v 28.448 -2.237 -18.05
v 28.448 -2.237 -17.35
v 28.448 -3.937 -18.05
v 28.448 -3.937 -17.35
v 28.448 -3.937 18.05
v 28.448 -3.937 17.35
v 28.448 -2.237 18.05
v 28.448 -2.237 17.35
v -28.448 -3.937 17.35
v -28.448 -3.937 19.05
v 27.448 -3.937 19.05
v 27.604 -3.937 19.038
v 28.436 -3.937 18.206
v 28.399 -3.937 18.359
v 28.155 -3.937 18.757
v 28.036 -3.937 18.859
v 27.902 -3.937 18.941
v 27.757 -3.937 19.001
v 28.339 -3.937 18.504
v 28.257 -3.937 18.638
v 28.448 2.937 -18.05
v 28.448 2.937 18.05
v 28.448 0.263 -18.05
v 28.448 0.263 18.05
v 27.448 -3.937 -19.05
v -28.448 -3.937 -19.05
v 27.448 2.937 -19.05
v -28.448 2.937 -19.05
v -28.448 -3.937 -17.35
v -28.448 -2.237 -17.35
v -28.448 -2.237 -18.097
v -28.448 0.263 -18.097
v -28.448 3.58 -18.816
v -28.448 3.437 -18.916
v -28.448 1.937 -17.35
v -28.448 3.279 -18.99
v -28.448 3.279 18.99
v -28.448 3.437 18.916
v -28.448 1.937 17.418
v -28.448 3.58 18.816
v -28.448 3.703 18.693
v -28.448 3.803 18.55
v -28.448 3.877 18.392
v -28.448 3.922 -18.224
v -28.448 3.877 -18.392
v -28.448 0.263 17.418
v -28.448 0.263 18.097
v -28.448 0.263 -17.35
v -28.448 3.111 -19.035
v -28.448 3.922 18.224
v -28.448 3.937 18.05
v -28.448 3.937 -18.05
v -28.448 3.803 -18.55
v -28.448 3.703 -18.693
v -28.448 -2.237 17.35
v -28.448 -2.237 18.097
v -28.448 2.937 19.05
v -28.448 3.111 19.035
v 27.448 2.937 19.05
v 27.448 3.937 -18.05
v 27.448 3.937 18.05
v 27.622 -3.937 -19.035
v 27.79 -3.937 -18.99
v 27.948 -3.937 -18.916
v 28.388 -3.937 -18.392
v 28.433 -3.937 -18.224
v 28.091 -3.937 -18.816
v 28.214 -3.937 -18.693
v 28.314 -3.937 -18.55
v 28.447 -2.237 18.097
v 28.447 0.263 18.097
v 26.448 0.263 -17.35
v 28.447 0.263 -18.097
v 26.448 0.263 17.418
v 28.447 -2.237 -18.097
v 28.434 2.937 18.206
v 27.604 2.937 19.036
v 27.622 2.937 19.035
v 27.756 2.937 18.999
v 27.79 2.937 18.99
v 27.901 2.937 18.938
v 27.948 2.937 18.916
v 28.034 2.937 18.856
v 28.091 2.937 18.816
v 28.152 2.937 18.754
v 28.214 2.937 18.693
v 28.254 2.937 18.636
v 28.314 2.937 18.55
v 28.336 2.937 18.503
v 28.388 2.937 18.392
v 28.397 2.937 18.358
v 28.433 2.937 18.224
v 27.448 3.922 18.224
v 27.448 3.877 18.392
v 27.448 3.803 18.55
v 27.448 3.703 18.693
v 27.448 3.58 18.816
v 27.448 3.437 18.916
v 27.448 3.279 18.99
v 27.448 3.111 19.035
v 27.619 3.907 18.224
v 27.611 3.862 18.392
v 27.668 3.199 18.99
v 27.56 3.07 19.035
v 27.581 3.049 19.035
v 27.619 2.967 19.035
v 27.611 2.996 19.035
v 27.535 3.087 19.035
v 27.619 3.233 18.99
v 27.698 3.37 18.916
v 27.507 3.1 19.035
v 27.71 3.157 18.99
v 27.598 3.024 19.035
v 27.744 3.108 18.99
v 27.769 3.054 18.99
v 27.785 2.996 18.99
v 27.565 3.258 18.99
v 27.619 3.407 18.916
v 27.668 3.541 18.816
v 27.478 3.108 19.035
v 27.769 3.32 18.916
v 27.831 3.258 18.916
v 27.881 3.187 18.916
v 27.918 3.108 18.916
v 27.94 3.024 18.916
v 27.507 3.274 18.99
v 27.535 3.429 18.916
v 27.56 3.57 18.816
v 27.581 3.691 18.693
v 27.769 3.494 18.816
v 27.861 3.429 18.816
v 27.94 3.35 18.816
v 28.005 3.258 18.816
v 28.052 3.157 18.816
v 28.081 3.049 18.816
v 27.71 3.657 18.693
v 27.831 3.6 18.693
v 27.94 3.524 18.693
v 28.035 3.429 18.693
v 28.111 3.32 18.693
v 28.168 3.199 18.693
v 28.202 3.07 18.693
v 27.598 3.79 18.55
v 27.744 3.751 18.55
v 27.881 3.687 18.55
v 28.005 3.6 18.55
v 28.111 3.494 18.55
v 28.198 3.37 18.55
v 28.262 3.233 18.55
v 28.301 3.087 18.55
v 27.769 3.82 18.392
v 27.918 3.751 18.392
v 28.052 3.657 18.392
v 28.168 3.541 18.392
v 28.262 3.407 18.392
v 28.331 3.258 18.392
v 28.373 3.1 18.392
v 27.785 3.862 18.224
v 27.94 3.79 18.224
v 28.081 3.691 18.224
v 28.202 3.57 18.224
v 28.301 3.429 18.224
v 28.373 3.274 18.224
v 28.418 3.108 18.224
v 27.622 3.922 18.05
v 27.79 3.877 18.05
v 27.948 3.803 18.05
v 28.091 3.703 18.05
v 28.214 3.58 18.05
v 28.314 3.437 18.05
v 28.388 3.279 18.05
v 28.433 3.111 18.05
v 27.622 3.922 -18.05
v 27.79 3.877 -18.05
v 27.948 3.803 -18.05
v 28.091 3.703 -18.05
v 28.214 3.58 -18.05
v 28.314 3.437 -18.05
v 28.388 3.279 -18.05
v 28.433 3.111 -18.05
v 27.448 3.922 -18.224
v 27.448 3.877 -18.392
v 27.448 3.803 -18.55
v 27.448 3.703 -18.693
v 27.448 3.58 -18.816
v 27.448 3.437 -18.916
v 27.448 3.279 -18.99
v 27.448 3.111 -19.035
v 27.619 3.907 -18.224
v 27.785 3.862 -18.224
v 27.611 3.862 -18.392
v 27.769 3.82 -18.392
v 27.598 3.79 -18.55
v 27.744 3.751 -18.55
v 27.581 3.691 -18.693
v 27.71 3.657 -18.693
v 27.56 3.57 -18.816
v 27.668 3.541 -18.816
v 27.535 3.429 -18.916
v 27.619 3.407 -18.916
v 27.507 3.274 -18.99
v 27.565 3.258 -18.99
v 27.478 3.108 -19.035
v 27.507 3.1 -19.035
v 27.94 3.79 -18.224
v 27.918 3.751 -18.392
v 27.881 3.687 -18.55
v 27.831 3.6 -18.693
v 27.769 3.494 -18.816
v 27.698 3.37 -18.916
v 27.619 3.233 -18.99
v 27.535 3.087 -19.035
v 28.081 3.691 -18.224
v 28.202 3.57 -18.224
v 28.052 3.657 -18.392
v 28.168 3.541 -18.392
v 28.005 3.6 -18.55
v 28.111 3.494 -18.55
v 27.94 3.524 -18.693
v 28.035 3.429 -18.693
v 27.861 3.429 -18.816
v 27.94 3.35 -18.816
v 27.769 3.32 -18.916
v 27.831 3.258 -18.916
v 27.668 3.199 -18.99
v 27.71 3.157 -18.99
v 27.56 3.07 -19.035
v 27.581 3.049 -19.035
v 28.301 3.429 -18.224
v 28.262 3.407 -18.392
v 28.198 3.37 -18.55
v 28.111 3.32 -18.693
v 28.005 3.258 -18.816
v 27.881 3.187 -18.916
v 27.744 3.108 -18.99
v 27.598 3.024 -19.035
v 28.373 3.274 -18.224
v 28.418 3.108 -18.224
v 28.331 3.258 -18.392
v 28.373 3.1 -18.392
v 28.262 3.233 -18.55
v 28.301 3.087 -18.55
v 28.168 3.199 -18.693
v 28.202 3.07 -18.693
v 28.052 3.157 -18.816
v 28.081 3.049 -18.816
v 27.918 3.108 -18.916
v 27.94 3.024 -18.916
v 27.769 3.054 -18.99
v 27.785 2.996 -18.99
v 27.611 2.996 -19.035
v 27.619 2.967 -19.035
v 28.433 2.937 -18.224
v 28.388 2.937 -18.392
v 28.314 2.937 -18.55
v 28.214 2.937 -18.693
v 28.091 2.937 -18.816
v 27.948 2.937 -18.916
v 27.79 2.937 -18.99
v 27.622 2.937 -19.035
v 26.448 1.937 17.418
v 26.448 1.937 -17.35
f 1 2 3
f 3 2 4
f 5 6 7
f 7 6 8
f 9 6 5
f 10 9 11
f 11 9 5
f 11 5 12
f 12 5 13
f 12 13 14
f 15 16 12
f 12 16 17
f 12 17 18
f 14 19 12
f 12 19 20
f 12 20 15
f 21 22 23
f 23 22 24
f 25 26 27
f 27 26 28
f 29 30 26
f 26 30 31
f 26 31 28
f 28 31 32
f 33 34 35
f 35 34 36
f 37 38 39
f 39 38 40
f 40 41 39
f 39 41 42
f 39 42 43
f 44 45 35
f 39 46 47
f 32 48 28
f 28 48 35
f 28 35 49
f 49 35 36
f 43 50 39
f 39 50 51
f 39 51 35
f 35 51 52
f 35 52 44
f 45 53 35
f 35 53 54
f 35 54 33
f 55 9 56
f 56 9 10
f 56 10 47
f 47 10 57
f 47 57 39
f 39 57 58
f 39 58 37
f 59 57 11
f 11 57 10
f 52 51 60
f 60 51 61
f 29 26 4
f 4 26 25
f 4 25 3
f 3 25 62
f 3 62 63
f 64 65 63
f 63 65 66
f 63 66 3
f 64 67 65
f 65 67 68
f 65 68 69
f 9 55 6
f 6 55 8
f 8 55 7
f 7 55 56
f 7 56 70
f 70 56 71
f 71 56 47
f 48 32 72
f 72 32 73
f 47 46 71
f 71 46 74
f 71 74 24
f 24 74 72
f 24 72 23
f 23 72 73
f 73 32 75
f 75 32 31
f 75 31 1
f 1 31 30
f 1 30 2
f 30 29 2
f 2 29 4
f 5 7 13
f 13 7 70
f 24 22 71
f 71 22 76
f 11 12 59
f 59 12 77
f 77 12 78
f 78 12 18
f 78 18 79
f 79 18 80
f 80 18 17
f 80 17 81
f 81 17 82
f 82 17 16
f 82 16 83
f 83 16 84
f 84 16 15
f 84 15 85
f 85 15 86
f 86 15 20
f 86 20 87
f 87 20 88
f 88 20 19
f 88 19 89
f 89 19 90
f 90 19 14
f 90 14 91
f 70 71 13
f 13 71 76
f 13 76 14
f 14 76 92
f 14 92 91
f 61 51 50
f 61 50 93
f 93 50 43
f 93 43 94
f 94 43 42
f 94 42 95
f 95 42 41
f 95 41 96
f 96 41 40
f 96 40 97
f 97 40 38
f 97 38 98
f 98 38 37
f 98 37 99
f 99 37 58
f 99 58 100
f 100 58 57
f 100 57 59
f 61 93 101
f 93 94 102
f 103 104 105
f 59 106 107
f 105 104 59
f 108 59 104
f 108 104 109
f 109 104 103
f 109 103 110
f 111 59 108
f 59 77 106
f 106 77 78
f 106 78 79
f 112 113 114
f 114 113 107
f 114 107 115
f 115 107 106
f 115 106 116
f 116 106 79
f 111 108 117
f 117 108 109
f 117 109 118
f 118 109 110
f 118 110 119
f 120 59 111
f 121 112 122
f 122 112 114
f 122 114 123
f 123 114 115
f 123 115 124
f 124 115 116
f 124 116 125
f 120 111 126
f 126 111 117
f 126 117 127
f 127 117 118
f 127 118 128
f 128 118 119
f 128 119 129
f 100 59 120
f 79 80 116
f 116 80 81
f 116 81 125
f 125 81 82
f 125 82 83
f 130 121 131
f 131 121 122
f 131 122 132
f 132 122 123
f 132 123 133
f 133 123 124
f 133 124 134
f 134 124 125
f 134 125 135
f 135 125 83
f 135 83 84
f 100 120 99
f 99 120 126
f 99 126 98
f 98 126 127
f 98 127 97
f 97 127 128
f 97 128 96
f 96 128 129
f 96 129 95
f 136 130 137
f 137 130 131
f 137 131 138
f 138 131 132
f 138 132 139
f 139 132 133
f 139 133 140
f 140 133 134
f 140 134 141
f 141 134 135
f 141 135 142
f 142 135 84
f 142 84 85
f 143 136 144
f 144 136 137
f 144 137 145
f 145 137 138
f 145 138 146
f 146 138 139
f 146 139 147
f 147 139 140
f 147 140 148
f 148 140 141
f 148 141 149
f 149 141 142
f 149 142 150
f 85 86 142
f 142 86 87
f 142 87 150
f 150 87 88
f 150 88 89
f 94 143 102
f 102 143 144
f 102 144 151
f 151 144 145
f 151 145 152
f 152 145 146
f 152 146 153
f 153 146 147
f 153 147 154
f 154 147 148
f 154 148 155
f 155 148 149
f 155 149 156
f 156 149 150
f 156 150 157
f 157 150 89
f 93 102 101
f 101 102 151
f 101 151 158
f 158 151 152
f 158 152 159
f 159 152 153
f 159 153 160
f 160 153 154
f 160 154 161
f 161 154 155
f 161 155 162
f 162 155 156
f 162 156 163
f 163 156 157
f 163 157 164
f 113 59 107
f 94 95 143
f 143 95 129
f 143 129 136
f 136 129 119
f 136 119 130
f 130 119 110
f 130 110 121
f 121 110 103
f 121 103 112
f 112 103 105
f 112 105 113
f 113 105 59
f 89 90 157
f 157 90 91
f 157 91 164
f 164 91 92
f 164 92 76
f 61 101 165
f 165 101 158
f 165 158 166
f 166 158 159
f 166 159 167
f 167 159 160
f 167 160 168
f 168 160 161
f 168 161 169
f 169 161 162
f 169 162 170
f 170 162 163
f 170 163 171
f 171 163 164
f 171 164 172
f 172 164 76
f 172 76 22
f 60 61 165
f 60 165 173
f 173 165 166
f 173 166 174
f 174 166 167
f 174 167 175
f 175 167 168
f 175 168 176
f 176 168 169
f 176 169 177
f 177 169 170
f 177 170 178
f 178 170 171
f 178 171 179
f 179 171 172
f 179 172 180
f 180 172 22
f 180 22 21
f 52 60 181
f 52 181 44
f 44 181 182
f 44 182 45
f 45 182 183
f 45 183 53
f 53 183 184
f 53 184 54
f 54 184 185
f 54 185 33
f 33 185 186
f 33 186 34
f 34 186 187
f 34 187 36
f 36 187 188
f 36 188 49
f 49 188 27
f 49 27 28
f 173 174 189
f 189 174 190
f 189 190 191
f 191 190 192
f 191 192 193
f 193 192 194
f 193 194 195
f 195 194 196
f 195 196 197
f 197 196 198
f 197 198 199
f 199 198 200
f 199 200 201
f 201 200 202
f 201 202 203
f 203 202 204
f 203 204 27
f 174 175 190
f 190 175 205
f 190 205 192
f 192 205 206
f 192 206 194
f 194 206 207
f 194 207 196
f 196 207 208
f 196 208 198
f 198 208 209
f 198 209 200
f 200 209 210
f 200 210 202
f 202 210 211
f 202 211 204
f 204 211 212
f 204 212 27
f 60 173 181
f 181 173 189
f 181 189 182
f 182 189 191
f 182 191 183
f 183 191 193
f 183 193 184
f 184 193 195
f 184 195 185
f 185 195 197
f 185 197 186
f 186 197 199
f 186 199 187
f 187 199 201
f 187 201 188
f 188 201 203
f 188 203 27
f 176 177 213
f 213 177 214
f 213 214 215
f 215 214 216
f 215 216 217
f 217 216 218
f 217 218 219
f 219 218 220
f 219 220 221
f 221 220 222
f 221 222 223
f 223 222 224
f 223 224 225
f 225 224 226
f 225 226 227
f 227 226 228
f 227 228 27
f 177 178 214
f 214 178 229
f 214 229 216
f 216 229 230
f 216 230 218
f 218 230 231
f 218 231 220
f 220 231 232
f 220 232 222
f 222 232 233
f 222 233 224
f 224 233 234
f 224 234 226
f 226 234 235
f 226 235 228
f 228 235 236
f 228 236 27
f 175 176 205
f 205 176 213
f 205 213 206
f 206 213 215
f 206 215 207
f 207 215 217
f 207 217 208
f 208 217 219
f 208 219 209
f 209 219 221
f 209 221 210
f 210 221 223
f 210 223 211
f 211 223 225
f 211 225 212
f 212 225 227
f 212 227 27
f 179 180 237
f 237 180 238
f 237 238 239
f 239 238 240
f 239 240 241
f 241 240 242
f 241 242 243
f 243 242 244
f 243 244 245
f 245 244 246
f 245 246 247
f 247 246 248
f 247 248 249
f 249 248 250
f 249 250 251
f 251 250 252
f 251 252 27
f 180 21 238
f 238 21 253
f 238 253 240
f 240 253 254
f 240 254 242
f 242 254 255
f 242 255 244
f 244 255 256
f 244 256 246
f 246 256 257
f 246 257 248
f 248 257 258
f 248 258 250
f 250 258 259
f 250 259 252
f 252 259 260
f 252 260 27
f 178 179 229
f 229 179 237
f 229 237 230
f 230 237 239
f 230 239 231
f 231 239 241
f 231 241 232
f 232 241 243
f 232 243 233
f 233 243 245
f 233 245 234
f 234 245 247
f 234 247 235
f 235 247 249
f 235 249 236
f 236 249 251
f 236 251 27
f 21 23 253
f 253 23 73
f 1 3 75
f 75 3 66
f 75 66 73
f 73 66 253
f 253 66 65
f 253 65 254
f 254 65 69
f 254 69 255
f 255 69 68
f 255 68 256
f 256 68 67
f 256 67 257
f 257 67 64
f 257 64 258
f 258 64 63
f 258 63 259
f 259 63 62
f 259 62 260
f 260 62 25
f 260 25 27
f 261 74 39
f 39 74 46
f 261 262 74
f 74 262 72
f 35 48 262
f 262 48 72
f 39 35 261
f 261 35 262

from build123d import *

# Parameters (mm, degrees)
SKETCH1_W           = 56.896
SKETCH1_H           = 38.1
BOSS_EXTRUDE1_DEPTH = 3.937
CUT_EXTRUDE1_DEPTH  = 61.12950428
FILLET1_R           = 1
SKETCH3_W           = 34.767886748
SKETCH3_H           = 4.174
CUT_EXTRUDE2_DEPTH  = 54.896


with BuildPart() as part:
    # Sketch1 → Boss-Extrude1 (new, symmetric)
    with BuildSketch(Plane(origin=(0, 0, 0), x_dir=(1, 0, 0), z_dir=(0, 1, 0))):
        Rectangle(SKETCH1_W, SKETCH1_H)
    extrude(amount=BOSS_EXTRUDE1_DEPTH, both=True)

    # Sketch2 → Cut-Extrude1 (cut, through all)
    with BuildSketch(Plane(origin=(28.448, 0, 0), x_dir=(0, 0, -1), z_dir=(1, 0, 0))):
        Polygon((18.0975, -2.237), (18.0975, 0.263), (17.492836072, 0.263), (-17.492836072, 0.263), (-18.0975, 0.263), (-18.0975, -2.237), (-17.35, -2.237), (-17.35, -3.937), (17.35, -3.937), (17.35, -2.237), align=None)
    extrude(amount=-CUT_EXTRUDE1_DEPTH, mode=Mode.SUBTRACT)

    # Fillet1
    # the kernel refuses this fillet: 1 mm, written as the material it takes off along each edge
    with BuildSketch(Plane(origin=(27.448, 2.937, -18.05), x_dir=(1, 0, 0), z_dir=(0, 0, -1))) as fillet1_piece_1_section:
        Polygon((0, 0), (FILLET1_R, 0), (FILLET1_R, -FILLET1_R), (0, -FILLET1_R), align=None)
    fillet1_piece_1 = extrude(amount=FILLET1_R, mode=Mode.PRIVATE)
    fillet1_piece_1 = fillet1_piece_1 - Plane(origin=(27.448, 2.937, -18.05), x_dir=(-0.7071067811865475, -0.7071067811865475, 0), z_dir=(0, 0, -1)) * Sphere(FILLET1_R, mode=Mode.PRIVATE)
    add(fillet1_piece_1, mode=Mode.SUBTRACT)
    with BuildSketch(Plane(origin=(27.448, 2.937, 18.05), x_dir=(0, 1, 0), z_dir=(1, 0, 0))) as fillet1_piece_2_section:
        Polygon((0, 0), (FILLET1_R, 0), (FILLET1_R, FILLET1_R), (0, FILLET1_R), align=None)
    fillet1_piece_2 = extrude(amount=FILLET1_R, mode=Mode.PRIVATE)
    fillet1_piece_2 = fillet1_piece_2 - Plane(origin=(27.448, 2.937, 18.05), x_dir=(0, -0.7071067811865475, -0.7071067811865475), z_dir=(1, 0, 0)) * Sphere(FILLET1_R, mode=Mode.PRIVATE)
    add(fillet1_piece_2, mode=Mode.SUBTRACT)
    with BuildSketch(Plane(origin=(-30.948, 3.937, -19.05), x_dir=(0, -1, 0), z_dir=(1, 0, 0))) as fillet1_piece_3:
        with BuildLine():
            CenterArc((FILLET1_R, -FILLET1_R), FILLET1_R, 90, 90)
            Line((0, -FILLET1_R), (0, 0))
            Line((0, 0), (FILLET1_R, 0))
        make_face()
    extrude(amount=58.396, mode=Mode.SUBTRACT)
    with BuildSketch(Plane(origin=(28.448, 3.937, -18.05), x_dir=(0, -1, 0), z_dir=(0, 0, 1))) as fillet1_piece_4:
        with BuildLine():
            CenterArc((FILLET1_R, -FILLET1_R), FILLET1_R, 90, 90)
            Line((0, -FILLET1_R), (0, 0))
            Line((0, 0), (FILLET1_R, 0))
        make_face()
    extrude(amount=36.1, mode=Mode.SUBTRACT)
    with BuildSketch(Plane(origin=(27.448, 3.937, 19.05), x_dir=(0, 0, -1), z_dir=(-1, 0, 0))) as fillet1_piece_5:
        with BuildLine():
            CenterArc((FILLET1_R, FILLET1_R), FILLET1_R, 180, 90)
            Line((0, FILLET1_R), (0, 0))
            Line((0, 0), (FILLET1_R, 0))
        make_face()
    extrude(amount=58.396, mode=Mode.SUBTRACT)
    with BuildSketch(Plane(origin=(28.448, 2.937, -19.05), x_dir=(-1, 0, 0), z_dir=(0, -1, 0)), Plane(origin=(28.448, 2.937, 19.05), x_dir=(0, 0, -1), z_dir=(0, -1, 0))) as fillet1_piece_6:
        with BuildLine():
            CenterArc((FILLET1_R, -FILLET1_R), FILLET1_R, 90, 90)
            Line((0, -FILLET1_R), (0, 0))
            Line((0, 0), (FILLET1_R, 0))
        make_face()
    extrude(amount=9.374, mode=Mode.SUBTRACT)

    # Sketch3 → Cut-Extrude2 (cut)
    with BuildSketch(Plane.ZY.offset(28.448)):
        with Locations((0.033943374, -0.15)):
            Rectangle(SKETCH3_W, SKETCH3_H)
    extrude(amount=-CUT_EXTRUDE2_DEPTH, mode=Mode.SUBTRACT)


solid = part.part
